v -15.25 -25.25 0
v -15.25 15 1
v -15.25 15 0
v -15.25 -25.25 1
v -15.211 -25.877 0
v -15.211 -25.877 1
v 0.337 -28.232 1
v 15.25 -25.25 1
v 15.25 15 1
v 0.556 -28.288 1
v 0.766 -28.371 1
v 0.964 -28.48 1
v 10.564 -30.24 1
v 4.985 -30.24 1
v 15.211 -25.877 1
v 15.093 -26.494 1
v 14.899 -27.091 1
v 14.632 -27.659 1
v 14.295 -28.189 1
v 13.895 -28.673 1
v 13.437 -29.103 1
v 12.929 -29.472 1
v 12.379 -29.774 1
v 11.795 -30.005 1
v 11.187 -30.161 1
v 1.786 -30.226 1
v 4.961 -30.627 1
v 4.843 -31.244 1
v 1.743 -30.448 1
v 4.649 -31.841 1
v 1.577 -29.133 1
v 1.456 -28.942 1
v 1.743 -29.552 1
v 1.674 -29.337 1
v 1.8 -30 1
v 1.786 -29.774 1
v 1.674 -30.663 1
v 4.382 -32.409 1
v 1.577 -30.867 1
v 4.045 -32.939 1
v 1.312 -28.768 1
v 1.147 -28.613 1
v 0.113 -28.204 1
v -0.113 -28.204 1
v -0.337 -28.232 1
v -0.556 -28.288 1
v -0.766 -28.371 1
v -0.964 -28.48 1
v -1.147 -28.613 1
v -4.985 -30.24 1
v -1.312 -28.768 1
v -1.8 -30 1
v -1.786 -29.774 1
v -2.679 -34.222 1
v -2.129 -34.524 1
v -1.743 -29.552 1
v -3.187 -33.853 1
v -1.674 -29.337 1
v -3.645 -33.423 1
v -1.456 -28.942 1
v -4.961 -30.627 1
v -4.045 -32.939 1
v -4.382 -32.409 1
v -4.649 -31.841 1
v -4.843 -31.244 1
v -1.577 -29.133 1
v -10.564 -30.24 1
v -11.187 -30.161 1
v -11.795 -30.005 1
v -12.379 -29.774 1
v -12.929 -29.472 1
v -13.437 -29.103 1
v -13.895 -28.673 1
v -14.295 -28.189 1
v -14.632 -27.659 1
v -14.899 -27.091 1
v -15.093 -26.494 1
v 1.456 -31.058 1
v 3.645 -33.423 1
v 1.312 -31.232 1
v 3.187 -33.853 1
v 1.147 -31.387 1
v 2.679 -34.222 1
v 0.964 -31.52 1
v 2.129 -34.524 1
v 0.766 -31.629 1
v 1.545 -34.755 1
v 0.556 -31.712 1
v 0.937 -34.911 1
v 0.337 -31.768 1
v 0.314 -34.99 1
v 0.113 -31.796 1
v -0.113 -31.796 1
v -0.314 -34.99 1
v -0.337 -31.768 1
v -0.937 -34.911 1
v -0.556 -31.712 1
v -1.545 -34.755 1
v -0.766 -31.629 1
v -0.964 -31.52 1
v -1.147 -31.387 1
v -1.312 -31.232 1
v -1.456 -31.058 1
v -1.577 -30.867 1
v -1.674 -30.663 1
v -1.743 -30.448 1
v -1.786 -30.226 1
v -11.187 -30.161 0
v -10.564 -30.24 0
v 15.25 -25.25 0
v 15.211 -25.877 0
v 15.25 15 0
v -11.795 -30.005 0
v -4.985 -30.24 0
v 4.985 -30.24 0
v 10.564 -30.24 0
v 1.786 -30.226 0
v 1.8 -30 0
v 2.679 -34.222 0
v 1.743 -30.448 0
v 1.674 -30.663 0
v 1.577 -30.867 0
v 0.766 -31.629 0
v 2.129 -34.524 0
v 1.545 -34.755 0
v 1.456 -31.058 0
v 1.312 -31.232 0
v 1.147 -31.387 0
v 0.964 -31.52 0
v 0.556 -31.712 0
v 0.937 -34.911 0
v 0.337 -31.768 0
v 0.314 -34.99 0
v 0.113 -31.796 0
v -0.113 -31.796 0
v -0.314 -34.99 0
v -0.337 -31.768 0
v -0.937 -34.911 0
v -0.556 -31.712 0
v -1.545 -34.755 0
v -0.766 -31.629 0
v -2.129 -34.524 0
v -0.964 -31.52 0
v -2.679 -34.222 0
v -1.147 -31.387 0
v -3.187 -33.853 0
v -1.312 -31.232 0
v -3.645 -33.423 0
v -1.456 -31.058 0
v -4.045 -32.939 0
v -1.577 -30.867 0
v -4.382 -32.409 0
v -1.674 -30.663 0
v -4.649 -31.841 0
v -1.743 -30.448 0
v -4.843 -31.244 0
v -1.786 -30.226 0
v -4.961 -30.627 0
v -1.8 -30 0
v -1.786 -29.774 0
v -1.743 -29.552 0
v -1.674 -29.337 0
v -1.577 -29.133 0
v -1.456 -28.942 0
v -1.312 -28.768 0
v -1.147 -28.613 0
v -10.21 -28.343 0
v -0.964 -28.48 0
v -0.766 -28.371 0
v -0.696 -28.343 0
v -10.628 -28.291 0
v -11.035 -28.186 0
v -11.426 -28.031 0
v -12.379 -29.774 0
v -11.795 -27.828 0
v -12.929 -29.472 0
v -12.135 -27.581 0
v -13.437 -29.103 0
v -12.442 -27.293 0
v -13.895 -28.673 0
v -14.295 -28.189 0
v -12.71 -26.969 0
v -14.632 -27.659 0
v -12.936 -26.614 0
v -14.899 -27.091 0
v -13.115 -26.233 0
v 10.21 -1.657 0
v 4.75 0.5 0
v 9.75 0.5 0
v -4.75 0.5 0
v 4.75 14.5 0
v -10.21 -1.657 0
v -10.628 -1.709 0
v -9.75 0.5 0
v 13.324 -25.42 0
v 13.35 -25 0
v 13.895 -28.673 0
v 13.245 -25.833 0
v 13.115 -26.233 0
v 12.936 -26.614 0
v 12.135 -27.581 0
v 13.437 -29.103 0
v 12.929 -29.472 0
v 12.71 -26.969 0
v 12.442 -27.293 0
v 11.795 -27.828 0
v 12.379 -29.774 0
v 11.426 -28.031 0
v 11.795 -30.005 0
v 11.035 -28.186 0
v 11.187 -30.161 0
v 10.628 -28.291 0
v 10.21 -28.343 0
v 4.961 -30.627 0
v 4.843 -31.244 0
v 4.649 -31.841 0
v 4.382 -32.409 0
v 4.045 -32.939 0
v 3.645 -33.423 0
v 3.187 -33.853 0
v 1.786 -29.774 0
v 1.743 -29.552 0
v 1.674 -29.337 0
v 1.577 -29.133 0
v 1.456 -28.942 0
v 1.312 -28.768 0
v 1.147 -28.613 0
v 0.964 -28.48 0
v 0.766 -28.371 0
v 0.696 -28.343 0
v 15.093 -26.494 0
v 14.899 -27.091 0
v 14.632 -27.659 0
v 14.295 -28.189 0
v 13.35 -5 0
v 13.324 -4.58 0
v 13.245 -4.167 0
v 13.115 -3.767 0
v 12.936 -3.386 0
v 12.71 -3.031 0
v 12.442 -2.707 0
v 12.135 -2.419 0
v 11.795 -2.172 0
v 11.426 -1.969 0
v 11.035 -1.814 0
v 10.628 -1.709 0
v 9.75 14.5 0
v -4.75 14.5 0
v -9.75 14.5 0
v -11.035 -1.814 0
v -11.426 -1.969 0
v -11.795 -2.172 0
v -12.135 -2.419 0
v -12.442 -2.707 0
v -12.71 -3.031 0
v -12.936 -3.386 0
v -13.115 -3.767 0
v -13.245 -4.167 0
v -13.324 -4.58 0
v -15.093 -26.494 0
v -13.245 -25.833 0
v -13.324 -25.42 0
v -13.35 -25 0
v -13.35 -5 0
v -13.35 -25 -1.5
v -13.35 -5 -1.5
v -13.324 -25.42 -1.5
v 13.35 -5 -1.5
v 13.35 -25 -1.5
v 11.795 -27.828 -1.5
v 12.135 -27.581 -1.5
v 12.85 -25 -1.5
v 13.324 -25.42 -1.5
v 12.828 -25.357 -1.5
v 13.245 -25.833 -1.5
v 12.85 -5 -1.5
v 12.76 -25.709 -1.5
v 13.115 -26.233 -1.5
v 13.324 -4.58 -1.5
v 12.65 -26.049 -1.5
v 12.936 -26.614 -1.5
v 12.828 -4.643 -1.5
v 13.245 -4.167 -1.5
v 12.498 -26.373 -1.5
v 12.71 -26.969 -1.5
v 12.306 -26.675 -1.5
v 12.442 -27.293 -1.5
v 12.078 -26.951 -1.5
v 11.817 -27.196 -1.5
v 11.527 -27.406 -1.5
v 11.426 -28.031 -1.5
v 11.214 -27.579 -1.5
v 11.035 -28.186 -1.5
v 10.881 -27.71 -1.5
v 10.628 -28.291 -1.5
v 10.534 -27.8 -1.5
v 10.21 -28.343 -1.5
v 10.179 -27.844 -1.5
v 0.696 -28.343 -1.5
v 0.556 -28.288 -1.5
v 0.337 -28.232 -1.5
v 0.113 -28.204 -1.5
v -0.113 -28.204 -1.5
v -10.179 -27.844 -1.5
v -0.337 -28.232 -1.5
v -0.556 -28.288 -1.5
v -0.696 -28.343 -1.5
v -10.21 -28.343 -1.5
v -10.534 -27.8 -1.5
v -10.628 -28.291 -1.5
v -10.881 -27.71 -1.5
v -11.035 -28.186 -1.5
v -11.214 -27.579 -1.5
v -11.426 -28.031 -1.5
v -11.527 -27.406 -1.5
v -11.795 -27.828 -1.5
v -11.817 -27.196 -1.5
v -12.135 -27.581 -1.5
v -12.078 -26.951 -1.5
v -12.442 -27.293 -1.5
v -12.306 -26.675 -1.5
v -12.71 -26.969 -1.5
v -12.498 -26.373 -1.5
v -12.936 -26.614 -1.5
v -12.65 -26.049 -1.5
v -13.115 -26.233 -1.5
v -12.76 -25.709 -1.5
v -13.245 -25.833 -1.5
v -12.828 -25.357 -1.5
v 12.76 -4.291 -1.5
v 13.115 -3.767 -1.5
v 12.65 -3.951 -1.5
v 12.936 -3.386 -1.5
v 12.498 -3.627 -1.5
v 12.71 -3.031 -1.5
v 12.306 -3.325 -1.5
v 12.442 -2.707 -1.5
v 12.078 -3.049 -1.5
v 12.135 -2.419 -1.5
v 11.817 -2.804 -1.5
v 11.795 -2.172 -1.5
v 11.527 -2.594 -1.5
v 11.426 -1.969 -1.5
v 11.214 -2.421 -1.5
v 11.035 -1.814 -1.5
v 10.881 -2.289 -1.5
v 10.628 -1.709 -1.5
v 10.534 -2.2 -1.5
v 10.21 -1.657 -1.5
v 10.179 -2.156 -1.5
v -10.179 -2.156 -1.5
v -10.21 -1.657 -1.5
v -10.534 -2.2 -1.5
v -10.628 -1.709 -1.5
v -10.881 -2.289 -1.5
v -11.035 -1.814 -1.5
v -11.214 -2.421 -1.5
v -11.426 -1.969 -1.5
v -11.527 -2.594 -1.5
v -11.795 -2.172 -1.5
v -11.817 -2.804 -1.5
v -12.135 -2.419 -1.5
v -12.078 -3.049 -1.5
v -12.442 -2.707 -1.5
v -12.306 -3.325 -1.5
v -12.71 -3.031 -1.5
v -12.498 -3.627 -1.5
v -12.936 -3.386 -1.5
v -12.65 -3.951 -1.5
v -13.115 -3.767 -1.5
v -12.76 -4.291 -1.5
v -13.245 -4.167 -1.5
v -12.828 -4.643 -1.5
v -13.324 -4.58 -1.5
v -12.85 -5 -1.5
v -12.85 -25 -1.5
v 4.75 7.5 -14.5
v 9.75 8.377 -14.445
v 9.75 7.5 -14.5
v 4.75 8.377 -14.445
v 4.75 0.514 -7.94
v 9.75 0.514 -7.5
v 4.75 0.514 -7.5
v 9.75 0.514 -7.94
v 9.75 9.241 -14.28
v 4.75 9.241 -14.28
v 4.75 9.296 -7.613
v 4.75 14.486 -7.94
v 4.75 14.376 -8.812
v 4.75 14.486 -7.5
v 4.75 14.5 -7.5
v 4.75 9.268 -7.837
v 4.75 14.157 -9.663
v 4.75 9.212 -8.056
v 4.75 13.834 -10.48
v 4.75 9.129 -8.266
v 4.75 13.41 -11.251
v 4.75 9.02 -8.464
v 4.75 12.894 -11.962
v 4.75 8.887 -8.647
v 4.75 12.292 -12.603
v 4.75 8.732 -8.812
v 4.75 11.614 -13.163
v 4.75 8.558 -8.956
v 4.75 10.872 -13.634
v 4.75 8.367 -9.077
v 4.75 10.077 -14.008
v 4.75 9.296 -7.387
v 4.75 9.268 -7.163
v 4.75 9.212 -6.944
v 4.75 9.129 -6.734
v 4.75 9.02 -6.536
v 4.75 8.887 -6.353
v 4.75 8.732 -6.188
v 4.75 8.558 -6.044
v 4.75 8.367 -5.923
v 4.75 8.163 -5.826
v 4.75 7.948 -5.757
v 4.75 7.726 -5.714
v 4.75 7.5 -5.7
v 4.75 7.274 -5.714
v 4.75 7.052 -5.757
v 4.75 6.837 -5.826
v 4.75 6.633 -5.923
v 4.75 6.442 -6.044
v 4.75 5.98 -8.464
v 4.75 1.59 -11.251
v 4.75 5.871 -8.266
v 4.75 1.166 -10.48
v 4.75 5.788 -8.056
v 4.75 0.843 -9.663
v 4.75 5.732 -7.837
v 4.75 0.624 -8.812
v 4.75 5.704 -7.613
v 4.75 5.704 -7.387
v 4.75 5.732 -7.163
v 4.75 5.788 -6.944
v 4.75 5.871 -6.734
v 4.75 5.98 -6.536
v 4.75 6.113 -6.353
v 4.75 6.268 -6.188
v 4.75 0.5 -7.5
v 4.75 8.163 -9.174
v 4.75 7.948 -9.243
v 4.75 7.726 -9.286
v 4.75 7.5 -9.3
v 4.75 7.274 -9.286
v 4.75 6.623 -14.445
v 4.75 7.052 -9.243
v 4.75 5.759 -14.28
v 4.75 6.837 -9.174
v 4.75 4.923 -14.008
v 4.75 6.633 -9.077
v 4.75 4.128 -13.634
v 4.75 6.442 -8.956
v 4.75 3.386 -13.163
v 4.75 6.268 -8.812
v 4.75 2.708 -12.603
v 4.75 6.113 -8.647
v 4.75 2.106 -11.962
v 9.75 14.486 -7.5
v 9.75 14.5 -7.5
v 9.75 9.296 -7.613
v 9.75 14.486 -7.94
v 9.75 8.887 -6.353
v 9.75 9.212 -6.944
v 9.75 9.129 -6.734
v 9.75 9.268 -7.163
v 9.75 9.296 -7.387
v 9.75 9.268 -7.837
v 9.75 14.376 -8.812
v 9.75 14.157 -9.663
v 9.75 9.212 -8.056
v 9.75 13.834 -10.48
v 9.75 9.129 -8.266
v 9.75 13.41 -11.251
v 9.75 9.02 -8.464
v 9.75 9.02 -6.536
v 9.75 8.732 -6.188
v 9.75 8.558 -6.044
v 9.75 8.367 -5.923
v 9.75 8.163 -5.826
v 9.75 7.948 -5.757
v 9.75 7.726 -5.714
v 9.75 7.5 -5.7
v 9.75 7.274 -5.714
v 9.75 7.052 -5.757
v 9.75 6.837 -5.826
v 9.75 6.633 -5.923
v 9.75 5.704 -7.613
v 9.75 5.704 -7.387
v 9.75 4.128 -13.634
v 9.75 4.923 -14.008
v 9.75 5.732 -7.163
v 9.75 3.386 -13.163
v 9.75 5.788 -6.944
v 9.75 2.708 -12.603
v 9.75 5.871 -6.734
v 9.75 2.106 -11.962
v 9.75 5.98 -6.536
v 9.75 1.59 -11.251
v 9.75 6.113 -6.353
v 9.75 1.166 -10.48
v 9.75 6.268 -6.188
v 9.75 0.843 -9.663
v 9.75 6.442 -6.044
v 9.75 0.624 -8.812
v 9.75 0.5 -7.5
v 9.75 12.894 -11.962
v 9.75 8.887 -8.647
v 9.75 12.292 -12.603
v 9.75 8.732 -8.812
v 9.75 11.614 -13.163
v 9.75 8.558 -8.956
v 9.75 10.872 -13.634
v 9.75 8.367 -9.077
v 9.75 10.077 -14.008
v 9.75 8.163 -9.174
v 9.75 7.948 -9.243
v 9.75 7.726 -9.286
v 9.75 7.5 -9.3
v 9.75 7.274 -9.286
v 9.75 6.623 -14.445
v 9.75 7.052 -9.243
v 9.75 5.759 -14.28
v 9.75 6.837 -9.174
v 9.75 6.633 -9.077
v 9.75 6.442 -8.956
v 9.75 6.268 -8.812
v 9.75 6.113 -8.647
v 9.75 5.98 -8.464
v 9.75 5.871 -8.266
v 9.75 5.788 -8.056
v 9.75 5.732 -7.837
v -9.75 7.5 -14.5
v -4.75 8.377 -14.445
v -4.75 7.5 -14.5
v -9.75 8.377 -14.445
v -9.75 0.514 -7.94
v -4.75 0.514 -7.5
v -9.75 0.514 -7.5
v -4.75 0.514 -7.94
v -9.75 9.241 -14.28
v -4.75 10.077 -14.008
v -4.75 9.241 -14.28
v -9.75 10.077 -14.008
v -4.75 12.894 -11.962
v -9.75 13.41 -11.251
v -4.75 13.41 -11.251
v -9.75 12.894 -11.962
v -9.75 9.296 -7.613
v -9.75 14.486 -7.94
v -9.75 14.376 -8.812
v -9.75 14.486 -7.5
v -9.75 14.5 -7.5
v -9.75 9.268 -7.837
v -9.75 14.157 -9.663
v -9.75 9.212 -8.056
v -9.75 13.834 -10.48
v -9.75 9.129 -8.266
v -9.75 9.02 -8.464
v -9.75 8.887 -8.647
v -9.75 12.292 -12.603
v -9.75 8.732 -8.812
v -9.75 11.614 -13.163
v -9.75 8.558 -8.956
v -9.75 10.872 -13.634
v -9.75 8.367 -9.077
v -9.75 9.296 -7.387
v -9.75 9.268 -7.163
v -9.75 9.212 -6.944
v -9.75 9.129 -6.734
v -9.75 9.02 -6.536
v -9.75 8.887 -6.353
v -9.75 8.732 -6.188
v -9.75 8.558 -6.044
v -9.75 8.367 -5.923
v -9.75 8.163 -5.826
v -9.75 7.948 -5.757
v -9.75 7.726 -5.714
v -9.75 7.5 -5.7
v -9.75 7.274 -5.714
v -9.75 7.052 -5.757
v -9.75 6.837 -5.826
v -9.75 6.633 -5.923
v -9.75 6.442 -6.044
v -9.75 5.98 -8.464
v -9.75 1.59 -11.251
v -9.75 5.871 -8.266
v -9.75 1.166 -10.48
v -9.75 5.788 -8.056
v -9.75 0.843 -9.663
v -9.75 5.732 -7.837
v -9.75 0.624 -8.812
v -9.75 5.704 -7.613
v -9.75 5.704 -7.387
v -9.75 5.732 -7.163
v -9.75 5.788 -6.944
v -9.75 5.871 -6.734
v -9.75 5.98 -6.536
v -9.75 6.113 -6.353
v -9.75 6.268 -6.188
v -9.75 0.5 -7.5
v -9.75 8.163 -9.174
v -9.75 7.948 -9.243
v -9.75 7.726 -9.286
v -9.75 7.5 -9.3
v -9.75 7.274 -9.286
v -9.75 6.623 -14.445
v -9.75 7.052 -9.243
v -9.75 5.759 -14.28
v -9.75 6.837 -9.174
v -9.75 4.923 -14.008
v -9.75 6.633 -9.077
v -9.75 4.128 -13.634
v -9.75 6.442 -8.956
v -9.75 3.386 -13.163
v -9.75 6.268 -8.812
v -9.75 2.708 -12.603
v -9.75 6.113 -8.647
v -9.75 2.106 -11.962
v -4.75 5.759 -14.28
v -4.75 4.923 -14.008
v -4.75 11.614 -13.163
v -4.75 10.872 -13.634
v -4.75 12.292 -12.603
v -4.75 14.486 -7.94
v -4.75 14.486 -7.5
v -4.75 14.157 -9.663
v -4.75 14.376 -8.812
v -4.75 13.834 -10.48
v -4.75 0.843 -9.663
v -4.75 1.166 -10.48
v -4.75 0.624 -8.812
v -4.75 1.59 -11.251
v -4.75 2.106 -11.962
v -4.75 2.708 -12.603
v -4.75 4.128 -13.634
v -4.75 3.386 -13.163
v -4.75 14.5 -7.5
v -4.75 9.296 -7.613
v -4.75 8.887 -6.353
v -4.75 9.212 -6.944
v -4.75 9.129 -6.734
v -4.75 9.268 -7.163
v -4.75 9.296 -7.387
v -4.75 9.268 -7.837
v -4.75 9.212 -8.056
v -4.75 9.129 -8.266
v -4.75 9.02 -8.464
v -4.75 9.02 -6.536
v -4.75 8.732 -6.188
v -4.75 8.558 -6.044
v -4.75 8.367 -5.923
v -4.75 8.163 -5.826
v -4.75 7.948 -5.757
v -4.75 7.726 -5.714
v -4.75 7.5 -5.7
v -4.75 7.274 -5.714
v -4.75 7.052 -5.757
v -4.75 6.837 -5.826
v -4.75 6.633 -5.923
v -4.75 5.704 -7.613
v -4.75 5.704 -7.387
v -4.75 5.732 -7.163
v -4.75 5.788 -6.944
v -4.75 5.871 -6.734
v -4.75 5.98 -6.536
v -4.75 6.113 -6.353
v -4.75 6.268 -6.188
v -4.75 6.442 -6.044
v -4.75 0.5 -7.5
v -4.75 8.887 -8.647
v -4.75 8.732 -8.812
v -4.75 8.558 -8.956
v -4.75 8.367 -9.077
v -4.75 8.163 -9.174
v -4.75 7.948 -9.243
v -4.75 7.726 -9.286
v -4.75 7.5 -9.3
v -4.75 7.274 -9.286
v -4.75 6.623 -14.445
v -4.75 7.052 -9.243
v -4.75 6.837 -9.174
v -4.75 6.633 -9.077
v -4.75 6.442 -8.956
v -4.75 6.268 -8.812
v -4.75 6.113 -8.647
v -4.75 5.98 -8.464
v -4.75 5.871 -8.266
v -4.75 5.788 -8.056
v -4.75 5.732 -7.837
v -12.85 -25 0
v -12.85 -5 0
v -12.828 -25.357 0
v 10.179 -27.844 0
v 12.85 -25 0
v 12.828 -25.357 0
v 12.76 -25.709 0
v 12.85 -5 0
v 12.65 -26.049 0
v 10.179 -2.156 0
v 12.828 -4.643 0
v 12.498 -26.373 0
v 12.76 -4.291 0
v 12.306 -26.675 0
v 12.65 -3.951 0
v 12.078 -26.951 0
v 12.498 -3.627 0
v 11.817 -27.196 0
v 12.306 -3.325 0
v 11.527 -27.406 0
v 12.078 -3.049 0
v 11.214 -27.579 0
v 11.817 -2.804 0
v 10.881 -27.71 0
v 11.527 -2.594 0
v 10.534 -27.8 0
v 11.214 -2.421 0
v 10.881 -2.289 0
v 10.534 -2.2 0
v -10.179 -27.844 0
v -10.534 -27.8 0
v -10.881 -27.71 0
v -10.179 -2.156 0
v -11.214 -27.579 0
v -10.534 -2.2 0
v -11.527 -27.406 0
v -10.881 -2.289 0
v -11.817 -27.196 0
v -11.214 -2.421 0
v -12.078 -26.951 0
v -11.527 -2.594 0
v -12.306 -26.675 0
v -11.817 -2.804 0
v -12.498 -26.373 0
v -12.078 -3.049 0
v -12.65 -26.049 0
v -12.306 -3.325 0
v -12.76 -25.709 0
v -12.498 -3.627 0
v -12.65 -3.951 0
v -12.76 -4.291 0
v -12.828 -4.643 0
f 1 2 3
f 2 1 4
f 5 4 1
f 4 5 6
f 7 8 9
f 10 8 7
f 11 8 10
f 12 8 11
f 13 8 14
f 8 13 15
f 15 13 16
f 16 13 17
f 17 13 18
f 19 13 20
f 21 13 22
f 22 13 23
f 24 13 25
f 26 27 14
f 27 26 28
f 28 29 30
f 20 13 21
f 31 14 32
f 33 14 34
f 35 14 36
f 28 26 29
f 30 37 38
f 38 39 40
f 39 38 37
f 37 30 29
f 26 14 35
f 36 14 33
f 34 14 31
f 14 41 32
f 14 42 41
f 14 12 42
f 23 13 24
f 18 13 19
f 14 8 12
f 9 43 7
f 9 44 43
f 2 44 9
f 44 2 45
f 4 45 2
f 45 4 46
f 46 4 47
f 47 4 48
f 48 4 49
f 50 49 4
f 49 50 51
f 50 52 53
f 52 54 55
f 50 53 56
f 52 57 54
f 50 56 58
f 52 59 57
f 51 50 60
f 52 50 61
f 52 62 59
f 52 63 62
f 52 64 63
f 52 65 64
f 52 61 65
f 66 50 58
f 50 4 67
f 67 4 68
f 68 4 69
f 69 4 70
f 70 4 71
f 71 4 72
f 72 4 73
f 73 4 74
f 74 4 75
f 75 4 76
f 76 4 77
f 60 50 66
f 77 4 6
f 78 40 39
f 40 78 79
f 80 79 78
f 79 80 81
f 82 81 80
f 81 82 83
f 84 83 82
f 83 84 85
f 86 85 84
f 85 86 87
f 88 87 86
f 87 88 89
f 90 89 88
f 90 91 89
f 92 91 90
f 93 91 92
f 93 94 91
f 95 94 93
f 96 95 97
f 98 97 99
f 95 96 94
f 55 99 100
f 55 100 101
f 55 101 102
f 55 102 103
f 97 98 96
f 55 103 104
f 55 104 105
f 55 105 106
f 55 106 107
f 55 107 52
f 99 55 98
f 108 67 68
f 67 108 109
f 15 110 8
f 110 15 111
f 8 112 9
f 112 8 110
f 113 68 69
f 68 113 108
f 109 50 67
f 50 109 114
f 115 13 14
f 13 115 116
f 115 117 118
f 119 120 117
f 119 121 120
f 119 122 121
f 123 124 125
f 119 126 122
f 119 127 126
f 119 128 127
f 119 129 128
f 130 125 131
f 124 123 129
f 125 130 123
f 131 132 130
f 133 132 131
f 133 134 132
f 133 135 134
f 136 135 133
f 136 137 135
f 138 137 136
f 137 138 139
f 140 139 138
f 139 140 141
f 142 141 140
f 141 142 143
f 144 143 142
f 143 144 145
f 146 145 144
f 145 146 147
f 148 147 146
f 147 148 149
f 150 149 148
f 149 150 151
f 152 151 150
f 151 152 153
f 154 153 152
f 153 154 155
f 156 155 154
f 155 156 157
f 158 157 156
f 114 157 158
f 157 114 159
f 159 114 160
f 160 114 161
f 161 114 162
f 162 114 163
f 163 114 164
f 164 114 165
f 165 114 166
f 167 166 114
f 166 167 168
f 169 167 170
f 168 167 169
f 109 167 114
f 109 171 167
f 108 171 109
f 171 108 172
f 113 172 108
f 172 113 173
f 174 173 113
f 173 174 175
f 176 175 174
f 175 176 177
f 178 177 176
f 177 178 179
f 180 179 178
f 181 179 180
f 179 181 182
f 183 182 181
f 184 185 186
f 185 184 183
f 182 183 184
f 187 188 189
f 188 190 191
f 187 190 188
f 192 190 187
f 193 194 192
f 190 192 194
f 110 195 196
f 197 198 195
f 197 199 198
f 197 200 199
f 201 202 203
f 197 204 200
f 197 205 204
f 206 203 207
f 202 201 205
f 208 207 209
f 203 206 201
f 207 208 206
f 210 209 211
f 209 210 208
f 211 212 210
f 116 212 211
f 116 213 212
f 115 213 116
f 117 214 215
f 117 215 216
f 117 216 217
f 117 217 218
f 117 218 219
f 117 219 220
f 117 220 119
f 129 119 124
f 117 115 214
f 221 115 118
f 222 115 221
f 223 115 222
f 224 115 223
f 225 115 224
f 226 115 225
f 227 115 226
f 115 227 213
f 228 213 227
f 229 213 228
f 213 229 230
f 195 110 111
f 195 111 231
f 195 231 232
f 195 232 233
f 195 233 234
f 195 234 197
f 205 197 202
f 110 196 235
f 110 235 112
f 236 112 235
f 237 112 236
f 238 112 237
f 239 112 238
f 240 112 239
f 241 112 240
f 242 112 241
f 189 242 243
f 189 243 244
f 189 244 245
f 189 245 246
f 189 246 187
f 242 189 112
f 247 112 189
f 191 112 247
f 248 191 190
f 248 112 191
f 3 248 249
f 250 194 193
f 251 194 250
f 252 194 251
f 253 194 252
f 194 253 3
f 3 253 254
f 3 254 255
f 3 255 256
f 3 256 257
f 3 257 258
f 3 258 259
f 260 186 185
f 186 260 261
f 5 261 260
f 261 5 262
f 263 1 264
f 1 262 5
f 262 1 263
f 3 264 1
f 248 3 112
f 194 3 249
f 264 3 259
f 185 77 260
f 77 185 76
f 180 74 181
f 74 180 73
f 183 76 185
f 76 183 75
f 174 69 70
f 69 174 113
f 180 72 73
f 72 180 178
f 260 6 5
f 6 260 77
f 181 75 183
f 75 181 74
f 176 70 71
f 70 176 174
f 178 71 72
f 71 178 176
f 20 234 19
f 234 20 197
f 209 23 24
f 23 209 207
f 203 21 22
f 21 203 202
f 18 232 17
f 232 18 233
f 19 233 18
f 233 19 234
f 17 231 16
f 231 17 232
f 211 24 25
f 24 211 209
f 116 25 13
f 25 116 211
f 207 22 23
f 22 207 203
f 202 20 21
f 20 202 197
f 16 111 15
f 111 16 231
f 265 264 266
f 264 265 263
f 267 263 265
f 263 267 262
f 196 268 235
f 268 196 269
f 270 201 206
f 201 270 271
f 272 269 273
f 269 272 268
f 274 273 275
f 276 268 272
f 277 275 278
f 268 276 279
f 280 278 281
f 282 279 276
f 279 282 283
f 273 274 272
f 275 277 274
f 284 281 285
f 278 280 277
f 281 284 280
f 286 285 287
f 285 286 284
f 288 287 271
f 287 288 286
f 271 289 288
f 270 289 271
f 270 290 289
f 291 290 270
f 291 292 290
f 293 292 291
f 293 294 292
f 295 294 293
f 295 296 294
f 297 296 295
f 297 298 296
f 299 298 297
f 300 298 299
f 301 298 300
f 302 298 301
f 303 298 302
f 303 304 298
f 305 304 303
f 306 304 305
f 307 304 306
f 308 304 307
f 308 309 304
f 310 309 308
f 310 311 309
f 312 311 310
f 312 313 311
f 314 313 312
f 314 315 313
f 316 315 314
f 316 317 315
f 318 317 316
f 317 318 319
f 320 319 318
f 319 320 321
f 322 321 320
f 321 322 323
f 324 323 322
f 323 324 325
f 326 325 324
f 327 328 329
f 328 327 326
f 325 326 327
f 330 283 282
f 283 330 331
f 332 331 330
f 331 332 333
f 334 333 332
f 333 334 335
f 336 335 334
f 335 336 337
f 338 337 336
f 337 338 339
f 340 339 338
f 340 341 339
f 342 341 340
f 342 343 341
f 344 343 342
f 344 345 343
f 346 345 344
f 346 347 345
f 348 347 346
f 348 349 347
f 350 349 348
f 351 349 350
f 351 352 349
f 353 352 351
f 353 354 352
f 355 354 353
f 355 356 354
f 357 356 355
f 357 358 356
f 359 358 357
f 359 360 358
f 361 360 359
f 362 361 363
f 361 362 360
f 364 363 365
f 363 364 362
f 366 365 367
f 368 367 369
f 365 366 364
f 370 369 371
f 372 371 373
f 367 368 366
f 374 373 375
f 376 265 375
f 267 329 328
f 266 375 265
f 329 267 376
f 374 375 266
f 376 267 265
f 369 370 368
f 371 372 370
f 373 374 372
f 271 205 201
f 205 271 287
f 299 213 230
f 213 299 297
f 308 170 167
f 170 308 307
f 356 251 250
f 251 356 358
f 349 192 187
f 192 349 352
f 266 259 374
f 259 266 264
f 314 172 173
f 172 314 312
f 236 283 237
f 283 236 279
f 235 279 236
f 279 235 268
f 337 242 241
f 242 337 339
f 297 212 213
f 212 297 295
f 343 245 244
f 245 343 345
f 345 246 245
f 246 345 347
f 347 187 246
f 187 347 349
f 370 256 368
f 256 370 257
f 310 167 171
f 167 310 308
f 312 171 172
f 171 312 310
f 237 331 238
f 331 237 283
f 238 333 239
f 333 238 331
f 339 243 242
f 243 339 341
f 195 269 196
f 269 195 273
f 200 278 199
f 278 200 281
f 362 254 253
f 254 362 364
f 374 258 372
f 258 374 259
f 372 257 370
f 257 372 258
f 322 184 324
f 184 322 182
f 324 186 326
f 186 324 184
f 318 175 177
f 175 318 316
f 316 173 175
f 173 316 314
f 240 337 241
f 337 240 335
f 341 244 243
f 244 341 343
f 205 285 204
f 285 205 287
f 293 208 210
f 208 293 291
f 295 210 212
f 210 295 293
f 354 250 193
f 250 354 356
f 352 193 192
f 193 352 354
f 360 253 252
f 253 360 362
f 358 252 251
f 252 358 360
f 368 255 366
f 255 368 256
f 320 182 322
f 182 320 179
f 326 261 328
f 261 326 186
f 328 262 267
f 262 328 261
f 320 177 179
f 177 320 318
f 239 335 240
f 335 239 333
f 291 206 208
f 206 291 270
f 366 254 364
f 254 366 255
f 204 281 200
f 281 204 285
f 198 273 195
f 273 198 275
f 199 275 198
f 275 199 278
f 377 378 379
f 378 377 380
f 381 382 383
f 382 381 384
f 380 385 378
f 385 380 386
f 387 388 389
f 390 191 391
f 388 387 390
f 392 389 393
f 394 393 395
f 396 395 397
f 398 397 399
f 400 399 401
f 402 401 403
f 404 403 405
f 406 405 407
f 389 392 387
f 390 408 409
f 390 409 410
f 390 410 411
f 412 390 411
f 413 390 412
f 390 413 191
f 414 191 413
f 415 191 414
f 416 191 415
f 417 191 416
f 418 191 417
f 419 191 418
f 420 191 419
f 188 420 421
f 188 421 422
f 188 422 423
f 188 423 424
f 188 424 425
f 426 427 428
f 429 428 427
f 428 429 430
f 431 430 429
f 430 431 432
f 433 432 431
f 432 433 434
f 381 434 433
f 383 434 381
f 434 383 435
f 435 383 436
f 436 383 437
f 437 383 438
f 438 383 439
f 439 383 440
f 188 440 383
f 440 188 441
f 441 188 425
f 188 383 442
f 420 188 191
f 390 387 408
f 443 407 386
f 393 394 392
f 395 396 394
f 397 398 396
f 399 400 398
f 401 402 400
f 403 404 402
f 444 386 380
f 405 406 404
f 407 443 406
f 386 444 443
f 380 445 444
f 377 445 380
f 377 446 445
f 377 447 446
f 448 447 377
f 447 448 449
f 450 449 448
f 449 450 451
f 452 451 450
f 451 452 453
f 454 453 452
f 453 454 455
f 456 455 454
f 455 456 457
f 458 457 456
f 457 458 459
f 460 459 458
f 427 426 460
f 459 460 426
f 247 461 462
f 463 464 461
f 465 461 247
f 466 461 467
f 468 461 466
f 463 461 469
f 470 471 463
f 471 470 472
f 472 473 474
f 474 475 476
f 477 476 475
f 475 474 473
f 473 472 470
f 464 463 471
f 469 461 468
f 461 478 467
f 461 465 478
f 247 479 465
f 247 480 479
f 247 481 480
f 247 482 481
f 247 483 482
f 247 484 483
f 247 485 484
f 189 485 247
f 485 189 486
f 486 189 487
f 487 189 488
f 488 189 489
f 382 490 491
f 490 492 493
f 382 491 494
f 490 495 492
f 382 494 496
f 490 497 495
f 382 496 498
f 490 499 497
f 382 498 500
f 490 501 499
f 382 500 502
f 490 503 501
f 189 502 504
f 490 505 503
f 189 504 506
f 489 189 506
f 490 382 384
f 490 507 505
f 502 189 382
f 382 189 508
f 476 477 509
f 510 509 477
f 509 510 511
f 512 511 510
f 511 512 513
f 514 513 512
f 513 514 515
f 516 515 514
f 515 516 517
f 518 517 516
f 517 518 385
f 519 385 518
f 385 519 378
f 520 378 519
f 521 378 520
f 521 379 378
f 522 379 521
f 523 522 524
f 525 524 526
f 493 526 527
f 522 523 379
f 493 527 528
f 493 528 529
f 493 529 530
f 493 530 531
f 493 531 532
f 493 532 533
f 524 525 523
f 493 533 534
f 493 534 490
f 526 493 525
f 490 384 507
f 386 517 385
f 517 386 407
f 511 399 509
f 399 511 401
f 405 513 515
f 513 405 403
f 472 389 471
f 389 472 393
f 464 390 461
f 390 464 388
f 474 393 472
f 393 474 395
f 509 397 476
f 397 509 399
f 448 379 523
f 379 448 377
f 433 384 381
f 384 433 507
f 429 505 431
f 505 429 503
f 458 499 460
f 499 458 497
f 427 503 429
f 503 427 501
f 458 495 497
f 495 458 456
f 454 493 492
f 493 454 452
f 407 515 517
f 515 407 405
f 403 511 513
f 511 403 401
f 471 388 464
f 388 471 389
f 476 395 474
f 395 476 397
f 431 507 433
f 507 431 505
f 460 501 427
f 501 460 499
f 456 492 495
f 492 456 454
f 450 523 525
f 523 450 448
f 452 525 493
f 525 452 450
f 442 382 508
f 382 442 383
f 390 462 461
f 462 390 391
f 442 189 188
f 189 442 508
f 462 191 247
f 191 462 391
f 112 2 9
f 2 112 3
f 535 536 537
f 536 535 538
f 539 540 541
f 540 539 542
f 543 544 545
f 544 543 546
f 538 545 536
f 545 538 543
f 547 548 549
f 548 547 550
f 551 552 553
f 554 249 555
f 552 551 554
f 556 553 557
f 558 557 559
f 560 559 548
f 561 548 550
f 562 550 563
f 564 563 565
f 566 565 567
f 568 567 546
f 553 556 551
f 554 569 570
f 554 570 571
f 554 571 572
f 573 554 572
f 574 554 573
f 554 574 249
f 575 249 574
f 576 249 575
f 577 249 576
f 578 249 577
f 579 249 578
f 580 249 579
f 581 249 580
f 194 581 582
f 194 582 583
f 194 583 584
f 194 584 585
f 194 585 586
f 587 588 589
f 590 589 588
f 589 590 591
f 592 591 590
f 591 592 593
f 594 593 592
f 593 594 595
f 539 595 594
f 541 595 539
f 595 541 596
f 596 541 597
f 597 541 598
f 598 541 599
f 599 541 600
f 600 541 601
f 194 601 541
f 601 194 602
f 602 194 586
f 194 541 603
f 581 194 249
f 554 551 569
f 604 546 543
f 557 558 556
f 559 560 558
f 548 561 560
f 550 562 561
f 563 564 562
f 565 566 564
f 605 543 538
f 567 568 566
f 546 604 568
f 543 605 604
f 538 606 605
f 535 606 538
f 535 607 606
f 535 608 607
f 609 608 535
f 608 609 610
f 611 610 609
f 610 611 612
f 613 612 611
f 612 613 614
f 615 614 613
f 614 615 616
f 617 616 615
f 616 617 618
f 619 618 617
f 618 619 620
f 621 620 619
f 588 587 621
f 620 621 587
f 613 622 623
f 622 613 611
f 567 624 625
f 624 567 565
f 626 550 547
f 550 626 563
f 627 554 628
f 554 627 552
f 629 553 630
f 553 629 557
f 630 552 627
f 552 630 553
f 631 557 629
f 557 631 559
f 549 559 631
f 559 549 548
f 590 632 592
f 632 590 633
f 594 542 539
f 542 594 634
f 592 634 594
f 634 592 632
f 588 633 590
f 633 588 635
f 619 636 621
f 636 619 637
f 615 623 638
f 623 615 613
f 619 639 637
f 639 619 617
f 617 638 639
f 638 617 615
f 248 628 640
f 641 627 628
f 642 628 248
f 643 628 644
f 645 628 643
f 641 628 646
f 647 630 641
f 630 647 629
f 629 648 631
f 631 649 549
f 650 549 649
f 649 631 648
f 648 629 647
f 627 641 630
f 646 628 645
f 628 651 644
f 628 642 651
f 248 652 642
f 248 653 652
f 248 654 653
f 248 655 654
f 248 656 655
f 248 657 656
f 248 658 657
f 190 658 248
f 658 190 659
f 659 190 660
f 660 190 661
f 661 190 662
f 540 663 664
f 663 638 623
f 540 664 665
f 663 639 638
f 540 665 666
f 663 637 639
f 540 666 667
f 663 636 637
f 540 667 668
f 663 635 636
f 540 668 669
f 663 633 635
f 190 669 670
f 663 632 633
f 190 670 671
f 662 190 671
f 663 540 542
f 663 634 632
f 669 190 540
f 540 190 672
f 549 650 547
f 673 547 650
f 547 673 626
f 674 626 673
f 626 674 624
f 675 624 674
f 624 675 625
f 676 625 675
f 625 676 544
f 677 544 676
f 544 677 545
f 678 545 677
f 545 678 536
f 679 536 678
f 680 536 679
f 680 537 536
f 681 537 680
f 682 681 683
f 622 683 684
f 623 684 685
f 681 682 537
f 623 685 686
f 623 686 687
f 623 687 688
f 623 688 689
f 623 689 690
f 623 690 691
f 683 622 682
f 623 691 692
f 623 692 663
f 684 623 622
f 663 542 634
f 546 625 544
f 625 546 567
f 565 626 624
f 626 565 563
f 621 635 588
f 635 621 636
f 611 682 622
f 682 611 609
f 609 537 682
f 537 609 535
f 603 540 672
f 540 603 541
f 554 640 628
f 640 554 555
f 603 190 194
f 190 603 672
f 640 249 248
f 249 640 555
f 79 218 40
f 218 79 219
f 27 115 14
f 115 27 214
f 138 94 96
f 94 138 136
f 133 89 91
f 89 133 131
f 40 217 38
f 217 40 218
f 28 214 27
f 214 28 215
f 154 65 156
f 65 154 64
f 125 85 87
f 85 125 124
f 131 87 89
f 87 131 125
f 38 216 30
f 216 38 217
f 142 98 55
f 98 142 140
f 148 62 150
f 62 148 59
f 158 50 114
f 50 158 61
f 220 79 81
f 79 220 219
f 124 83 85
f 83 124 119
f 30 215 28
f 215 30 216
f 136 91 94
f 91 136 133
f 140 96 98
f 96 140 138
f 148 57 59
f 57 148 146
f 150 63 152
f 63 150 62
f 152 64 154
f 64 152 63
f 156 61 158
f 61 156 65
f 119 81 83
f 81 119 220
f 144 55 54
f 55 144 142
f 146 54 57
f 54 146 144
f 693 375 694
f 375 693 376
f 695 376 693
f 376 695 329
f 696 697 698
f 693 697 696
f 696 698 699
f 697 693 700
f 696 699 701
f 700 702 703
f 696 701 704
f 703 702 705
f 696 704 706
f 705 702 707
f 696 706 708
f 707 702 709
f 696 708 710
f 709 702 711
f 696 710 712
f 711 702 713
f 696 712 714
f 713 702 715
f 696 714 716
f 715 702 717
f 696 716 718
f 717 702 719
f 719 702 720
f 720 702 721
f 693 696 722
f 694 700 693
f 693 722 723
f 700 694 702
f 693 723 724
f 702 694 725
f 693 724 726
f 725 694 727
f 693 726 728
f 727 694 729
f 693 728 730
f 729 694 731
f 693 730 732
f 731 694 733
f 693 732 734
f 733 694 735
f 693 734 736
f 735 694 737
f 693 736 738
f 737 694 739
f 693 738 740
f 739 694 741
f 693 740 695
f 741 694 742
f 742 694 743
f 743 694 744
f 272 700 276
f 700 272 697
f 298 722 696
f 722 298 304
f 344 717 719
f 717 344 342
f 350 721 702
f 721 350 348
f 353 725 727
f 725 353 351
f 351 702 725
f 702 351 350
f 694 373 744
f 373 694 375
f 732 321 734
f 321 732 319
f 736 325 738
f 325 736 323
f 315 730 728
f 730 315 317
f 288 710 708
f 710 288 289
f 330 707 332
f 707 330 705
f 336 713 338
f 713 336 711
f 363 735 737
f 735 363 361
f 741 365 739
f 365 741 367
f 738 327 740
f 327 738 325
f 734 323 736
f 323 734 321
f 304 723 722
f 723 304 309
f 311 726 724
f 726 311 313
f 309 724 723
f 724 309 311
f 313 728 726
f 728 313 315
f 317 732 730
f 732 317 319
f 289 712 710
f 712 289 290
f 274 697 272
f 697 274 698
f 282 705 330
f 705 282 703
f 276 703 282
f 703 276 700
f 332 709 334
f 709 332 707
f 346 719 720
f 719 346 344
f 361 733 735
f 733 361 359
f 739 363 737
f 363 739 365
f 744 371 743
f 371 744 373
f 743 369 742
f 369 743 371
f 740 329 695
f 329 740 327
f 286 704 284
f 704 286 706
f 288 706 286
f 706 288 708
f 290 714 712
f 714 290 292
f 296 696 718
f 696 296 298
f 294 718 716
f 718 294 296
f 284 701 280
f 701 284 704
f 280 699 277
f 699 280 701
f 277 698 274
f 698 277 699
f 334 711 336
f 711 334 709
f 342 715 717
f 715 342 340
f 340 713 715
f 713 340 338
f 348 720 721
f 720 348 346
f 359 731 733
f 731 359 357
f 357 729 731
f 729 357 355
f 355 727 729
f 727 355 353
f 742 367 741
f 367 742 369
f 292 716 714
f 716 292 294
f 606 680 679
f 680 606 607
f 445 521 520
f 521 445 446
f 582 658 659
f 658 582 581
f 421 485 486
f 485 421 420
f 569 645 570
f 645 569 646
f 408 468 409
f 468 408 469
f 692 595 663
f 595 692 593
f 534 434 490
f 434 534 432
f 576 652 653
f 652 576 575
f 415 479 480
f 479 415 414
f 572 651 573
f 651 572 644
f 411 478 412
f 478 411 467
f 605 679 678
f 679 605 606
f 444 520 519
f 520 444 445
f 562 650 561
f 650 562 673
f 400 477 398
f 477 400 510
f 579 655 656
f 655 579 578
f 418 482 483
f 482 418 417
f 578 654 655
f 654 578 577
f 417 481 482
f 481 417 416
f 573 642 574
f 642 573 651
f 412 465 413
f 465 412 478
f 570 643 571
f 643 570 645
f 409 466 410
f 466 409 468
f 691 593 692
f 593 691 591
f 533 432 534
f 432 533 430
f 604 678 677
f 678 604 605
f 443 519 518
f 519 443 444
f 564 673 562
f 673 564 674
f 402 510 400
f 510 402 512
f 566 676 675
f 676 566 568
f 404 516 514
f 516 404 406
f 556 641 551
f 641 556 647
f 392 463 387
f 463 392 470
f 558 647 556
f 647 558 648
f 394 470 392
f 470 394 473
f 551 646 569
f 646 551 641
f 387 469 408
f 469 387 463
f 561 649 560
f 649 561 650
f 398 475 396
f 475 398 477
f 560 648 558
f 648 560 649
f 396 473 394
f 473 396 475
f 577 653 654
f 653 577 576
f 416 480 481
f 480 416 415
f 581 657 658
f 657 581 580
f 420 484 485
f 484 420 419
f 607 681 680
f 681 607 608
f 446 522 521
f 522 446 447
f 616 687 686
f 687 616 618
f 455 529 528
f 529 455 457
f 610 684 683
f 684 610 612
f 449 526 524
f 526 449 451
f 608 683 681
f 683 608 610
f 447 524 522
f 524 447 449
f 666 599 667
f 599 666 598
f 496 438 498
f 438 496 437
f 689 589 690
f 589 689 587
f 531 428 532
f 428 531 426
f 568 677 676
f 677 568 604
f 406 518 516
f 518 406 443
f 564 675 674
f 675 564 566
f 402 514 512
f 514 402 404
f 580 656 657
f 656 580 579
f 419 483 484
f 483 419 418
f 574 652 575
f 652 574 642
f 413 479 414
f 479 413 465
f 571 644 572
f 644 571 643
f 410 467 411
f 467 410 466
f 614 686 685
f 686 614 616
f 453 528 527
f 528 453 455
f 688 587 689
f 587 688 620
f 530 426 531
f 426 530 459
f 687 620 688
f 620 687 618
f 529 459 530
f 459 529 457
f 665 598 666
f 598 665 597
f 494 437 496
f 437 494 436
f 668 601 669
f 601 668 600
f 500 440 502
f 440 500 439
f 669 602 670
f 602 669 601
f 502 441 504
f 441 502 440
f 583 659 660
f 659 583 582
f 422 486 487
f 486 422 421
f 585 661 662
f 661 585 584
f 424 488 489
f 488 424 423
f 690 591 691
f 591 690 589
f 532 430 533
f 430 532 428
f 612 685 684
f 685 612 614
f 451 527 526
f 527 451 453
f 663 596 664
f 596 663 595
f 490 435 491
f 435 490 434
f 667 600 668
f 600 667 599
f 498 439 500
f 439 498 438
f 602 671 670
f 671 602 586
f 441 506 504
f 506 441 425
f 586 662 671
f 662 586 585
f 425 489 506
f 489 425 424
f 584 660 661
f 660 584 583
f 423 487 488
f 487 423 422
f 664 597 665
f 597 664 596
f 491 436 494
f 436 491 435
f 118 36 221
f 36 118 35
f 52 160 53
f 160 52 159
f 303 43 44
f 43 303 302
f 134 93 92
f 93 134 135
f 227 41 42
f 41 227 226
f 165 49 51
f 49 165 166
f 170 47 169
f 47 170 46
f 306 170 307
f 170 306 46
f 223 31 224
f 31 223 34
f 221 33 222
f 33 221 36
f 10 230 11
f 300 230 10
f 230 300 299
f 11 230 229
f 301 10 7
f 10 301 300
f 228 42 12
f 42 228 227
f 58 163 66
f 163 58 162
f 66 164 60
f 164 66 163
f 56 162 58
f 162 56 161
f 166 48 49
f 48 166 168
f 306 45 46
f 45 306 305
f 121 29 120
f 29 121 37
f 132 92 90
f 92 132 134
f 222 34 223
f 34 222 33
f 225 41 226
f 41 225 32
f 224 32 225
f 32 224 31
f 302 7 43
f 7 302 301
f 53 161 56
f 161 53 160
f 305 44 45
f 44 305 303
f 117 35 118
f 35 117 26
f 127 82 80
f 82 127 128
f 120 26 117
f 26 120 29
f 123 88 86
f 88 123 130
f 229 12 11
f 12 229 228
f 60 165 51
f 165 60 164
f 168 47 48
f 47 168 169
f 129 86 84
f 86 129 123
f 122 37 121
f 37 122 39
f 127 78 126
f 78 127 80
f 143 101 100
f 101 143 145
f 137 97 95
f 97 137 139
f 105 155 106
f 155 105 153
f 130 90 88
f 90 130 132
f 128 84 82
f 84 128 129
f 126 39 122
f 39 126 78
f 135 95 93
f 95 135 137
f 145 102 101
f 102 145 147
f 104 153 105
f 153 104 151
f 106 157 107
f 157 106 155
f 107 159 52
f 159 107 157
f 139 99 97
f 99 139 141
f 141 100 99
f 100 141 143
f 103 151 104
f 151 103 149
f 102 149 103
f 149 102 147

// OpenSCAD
$fn = 50;


difference() {
	union() {
		translate(v = [0, -15.0000000000, 0]) {
			hull() {
				translate(v = [-10.2500000000, 10.2500000000, 0]) {
					cylinder(h = 1, r = 5);
				}
				translate(v = [10.2500000000, 10.2500000000, 0]) {
					cylinder(h = 1, r = 5);
				}
				translate(v = [-10.2500000000, -10.2500000000, 0]) {
					cylinder(h = 1, r = 5);
				}
				translate(v = [10.2500000000, -10.2500000000, 0]) {
					cylinder(h = 1, r = 5);
				}
			}
		}
		translate(v = [0.0000000000, -15.0000000000, -1.5000000000]) {
			hull() {
				translate(v = [-10.0000000000, 10.0000000000, 0]) {
					cylinder(h = 1.5000000000, r = 3.3500000000);
				}
				translate(v = [10.0000000000, 10.0000000000, 0]) {
					cylinder(h = 1.5000000000, r = 3.3500000000);
				}
				translate(v = [-10.0000000000, -10.0000000000, 0]) {
					cylinder(h = 1.5000000000, r = 3.3500000000);
				}
				translate(v = [10.0000000000, -10.0000000000, 0]) {
					cylinder(h = 1.5000000000, r = 3.3500000000);
				}
			}
		}
		translate(v = [4.7500000000, 7.5000000000, -7.5000000000]) {
			rotate(a = [0, 90, 0]) {
				cylinder(h = 5, r = 7.0000000000);
			}
		}
		translate(v = [4.7500000000, 0.5000000000, -7.5000000000]) {
			cube(size = [5, 14, 7.5000000000]);
		}
		translate(v = [-0.7500000000, -15.0000000000, 0.0000000000]) {
			cube(size = [16, 30, 1]);
		}
		translate(v = [-9.7500000000, 7.5000000000, -7.5000000000]) {
			rotate(a = [0, 90, 0]) {
				cylinder(h = 5, r = 7.0000000000);
			}
		}
		translate(v = [-9.7500000000, 0.5000000000, -7.5000000000]) {
			cube(size = [5, 14, 7.5000000000]);
		}
		translate(v = [-15.2500000000, -15.0000000000, 0.0000000000]) {
			cube(size = [16, 30, 1]);
		}
		translate(v = [0, -30, 0.0000000000]) {
			cylinder(h = 1, r = 5.0000000000);
		}
	}
	union() {
		translate(v = [0.0000000000, -15.0000000000, -1.5000000000]) {
			hull() {
				translate(v = [-10.0000000000, 10.0000000000, 0]) {
					cylinder(h = 1.5000000000, r = 2.8500000000);
				}
				translate(v = [10.0000000000, 10.0000000000, 0]) {
					cylinder(h = 1.5000000000, r = 2.8500000000);
				}
				translate(v = [-10.0000000000, -10.0000000000, 0]) {
					cylinder(h = 1.5000000000, r = 2.8500000000);
				}
				translate(v = [10.0000000000, -10.0000000000, 0]) {
					cylinder(h = 1.5000000000, r = 2.8500000000);
				}
			}
		}
		translate(v = [-0.2500000000, 7.5000000000, -7.5000000000]) {
			rotate(a = [0, 90, 0]) {
				cylinder(h = 15, r = 1.8000000000);
			}
		}
		translate(v = [-14.7500000000, 7.5000000000, -7.5000000000]) {
			rotate(a = [0, 90, 0]) {
				cylinder(h = 15, r = 1.8000000000);
			}
		}
		translate(v = [0, -30, -100.0000000000]) {
			cylinder(h = 200, r = 1.8000000000);
		}
	}
}
